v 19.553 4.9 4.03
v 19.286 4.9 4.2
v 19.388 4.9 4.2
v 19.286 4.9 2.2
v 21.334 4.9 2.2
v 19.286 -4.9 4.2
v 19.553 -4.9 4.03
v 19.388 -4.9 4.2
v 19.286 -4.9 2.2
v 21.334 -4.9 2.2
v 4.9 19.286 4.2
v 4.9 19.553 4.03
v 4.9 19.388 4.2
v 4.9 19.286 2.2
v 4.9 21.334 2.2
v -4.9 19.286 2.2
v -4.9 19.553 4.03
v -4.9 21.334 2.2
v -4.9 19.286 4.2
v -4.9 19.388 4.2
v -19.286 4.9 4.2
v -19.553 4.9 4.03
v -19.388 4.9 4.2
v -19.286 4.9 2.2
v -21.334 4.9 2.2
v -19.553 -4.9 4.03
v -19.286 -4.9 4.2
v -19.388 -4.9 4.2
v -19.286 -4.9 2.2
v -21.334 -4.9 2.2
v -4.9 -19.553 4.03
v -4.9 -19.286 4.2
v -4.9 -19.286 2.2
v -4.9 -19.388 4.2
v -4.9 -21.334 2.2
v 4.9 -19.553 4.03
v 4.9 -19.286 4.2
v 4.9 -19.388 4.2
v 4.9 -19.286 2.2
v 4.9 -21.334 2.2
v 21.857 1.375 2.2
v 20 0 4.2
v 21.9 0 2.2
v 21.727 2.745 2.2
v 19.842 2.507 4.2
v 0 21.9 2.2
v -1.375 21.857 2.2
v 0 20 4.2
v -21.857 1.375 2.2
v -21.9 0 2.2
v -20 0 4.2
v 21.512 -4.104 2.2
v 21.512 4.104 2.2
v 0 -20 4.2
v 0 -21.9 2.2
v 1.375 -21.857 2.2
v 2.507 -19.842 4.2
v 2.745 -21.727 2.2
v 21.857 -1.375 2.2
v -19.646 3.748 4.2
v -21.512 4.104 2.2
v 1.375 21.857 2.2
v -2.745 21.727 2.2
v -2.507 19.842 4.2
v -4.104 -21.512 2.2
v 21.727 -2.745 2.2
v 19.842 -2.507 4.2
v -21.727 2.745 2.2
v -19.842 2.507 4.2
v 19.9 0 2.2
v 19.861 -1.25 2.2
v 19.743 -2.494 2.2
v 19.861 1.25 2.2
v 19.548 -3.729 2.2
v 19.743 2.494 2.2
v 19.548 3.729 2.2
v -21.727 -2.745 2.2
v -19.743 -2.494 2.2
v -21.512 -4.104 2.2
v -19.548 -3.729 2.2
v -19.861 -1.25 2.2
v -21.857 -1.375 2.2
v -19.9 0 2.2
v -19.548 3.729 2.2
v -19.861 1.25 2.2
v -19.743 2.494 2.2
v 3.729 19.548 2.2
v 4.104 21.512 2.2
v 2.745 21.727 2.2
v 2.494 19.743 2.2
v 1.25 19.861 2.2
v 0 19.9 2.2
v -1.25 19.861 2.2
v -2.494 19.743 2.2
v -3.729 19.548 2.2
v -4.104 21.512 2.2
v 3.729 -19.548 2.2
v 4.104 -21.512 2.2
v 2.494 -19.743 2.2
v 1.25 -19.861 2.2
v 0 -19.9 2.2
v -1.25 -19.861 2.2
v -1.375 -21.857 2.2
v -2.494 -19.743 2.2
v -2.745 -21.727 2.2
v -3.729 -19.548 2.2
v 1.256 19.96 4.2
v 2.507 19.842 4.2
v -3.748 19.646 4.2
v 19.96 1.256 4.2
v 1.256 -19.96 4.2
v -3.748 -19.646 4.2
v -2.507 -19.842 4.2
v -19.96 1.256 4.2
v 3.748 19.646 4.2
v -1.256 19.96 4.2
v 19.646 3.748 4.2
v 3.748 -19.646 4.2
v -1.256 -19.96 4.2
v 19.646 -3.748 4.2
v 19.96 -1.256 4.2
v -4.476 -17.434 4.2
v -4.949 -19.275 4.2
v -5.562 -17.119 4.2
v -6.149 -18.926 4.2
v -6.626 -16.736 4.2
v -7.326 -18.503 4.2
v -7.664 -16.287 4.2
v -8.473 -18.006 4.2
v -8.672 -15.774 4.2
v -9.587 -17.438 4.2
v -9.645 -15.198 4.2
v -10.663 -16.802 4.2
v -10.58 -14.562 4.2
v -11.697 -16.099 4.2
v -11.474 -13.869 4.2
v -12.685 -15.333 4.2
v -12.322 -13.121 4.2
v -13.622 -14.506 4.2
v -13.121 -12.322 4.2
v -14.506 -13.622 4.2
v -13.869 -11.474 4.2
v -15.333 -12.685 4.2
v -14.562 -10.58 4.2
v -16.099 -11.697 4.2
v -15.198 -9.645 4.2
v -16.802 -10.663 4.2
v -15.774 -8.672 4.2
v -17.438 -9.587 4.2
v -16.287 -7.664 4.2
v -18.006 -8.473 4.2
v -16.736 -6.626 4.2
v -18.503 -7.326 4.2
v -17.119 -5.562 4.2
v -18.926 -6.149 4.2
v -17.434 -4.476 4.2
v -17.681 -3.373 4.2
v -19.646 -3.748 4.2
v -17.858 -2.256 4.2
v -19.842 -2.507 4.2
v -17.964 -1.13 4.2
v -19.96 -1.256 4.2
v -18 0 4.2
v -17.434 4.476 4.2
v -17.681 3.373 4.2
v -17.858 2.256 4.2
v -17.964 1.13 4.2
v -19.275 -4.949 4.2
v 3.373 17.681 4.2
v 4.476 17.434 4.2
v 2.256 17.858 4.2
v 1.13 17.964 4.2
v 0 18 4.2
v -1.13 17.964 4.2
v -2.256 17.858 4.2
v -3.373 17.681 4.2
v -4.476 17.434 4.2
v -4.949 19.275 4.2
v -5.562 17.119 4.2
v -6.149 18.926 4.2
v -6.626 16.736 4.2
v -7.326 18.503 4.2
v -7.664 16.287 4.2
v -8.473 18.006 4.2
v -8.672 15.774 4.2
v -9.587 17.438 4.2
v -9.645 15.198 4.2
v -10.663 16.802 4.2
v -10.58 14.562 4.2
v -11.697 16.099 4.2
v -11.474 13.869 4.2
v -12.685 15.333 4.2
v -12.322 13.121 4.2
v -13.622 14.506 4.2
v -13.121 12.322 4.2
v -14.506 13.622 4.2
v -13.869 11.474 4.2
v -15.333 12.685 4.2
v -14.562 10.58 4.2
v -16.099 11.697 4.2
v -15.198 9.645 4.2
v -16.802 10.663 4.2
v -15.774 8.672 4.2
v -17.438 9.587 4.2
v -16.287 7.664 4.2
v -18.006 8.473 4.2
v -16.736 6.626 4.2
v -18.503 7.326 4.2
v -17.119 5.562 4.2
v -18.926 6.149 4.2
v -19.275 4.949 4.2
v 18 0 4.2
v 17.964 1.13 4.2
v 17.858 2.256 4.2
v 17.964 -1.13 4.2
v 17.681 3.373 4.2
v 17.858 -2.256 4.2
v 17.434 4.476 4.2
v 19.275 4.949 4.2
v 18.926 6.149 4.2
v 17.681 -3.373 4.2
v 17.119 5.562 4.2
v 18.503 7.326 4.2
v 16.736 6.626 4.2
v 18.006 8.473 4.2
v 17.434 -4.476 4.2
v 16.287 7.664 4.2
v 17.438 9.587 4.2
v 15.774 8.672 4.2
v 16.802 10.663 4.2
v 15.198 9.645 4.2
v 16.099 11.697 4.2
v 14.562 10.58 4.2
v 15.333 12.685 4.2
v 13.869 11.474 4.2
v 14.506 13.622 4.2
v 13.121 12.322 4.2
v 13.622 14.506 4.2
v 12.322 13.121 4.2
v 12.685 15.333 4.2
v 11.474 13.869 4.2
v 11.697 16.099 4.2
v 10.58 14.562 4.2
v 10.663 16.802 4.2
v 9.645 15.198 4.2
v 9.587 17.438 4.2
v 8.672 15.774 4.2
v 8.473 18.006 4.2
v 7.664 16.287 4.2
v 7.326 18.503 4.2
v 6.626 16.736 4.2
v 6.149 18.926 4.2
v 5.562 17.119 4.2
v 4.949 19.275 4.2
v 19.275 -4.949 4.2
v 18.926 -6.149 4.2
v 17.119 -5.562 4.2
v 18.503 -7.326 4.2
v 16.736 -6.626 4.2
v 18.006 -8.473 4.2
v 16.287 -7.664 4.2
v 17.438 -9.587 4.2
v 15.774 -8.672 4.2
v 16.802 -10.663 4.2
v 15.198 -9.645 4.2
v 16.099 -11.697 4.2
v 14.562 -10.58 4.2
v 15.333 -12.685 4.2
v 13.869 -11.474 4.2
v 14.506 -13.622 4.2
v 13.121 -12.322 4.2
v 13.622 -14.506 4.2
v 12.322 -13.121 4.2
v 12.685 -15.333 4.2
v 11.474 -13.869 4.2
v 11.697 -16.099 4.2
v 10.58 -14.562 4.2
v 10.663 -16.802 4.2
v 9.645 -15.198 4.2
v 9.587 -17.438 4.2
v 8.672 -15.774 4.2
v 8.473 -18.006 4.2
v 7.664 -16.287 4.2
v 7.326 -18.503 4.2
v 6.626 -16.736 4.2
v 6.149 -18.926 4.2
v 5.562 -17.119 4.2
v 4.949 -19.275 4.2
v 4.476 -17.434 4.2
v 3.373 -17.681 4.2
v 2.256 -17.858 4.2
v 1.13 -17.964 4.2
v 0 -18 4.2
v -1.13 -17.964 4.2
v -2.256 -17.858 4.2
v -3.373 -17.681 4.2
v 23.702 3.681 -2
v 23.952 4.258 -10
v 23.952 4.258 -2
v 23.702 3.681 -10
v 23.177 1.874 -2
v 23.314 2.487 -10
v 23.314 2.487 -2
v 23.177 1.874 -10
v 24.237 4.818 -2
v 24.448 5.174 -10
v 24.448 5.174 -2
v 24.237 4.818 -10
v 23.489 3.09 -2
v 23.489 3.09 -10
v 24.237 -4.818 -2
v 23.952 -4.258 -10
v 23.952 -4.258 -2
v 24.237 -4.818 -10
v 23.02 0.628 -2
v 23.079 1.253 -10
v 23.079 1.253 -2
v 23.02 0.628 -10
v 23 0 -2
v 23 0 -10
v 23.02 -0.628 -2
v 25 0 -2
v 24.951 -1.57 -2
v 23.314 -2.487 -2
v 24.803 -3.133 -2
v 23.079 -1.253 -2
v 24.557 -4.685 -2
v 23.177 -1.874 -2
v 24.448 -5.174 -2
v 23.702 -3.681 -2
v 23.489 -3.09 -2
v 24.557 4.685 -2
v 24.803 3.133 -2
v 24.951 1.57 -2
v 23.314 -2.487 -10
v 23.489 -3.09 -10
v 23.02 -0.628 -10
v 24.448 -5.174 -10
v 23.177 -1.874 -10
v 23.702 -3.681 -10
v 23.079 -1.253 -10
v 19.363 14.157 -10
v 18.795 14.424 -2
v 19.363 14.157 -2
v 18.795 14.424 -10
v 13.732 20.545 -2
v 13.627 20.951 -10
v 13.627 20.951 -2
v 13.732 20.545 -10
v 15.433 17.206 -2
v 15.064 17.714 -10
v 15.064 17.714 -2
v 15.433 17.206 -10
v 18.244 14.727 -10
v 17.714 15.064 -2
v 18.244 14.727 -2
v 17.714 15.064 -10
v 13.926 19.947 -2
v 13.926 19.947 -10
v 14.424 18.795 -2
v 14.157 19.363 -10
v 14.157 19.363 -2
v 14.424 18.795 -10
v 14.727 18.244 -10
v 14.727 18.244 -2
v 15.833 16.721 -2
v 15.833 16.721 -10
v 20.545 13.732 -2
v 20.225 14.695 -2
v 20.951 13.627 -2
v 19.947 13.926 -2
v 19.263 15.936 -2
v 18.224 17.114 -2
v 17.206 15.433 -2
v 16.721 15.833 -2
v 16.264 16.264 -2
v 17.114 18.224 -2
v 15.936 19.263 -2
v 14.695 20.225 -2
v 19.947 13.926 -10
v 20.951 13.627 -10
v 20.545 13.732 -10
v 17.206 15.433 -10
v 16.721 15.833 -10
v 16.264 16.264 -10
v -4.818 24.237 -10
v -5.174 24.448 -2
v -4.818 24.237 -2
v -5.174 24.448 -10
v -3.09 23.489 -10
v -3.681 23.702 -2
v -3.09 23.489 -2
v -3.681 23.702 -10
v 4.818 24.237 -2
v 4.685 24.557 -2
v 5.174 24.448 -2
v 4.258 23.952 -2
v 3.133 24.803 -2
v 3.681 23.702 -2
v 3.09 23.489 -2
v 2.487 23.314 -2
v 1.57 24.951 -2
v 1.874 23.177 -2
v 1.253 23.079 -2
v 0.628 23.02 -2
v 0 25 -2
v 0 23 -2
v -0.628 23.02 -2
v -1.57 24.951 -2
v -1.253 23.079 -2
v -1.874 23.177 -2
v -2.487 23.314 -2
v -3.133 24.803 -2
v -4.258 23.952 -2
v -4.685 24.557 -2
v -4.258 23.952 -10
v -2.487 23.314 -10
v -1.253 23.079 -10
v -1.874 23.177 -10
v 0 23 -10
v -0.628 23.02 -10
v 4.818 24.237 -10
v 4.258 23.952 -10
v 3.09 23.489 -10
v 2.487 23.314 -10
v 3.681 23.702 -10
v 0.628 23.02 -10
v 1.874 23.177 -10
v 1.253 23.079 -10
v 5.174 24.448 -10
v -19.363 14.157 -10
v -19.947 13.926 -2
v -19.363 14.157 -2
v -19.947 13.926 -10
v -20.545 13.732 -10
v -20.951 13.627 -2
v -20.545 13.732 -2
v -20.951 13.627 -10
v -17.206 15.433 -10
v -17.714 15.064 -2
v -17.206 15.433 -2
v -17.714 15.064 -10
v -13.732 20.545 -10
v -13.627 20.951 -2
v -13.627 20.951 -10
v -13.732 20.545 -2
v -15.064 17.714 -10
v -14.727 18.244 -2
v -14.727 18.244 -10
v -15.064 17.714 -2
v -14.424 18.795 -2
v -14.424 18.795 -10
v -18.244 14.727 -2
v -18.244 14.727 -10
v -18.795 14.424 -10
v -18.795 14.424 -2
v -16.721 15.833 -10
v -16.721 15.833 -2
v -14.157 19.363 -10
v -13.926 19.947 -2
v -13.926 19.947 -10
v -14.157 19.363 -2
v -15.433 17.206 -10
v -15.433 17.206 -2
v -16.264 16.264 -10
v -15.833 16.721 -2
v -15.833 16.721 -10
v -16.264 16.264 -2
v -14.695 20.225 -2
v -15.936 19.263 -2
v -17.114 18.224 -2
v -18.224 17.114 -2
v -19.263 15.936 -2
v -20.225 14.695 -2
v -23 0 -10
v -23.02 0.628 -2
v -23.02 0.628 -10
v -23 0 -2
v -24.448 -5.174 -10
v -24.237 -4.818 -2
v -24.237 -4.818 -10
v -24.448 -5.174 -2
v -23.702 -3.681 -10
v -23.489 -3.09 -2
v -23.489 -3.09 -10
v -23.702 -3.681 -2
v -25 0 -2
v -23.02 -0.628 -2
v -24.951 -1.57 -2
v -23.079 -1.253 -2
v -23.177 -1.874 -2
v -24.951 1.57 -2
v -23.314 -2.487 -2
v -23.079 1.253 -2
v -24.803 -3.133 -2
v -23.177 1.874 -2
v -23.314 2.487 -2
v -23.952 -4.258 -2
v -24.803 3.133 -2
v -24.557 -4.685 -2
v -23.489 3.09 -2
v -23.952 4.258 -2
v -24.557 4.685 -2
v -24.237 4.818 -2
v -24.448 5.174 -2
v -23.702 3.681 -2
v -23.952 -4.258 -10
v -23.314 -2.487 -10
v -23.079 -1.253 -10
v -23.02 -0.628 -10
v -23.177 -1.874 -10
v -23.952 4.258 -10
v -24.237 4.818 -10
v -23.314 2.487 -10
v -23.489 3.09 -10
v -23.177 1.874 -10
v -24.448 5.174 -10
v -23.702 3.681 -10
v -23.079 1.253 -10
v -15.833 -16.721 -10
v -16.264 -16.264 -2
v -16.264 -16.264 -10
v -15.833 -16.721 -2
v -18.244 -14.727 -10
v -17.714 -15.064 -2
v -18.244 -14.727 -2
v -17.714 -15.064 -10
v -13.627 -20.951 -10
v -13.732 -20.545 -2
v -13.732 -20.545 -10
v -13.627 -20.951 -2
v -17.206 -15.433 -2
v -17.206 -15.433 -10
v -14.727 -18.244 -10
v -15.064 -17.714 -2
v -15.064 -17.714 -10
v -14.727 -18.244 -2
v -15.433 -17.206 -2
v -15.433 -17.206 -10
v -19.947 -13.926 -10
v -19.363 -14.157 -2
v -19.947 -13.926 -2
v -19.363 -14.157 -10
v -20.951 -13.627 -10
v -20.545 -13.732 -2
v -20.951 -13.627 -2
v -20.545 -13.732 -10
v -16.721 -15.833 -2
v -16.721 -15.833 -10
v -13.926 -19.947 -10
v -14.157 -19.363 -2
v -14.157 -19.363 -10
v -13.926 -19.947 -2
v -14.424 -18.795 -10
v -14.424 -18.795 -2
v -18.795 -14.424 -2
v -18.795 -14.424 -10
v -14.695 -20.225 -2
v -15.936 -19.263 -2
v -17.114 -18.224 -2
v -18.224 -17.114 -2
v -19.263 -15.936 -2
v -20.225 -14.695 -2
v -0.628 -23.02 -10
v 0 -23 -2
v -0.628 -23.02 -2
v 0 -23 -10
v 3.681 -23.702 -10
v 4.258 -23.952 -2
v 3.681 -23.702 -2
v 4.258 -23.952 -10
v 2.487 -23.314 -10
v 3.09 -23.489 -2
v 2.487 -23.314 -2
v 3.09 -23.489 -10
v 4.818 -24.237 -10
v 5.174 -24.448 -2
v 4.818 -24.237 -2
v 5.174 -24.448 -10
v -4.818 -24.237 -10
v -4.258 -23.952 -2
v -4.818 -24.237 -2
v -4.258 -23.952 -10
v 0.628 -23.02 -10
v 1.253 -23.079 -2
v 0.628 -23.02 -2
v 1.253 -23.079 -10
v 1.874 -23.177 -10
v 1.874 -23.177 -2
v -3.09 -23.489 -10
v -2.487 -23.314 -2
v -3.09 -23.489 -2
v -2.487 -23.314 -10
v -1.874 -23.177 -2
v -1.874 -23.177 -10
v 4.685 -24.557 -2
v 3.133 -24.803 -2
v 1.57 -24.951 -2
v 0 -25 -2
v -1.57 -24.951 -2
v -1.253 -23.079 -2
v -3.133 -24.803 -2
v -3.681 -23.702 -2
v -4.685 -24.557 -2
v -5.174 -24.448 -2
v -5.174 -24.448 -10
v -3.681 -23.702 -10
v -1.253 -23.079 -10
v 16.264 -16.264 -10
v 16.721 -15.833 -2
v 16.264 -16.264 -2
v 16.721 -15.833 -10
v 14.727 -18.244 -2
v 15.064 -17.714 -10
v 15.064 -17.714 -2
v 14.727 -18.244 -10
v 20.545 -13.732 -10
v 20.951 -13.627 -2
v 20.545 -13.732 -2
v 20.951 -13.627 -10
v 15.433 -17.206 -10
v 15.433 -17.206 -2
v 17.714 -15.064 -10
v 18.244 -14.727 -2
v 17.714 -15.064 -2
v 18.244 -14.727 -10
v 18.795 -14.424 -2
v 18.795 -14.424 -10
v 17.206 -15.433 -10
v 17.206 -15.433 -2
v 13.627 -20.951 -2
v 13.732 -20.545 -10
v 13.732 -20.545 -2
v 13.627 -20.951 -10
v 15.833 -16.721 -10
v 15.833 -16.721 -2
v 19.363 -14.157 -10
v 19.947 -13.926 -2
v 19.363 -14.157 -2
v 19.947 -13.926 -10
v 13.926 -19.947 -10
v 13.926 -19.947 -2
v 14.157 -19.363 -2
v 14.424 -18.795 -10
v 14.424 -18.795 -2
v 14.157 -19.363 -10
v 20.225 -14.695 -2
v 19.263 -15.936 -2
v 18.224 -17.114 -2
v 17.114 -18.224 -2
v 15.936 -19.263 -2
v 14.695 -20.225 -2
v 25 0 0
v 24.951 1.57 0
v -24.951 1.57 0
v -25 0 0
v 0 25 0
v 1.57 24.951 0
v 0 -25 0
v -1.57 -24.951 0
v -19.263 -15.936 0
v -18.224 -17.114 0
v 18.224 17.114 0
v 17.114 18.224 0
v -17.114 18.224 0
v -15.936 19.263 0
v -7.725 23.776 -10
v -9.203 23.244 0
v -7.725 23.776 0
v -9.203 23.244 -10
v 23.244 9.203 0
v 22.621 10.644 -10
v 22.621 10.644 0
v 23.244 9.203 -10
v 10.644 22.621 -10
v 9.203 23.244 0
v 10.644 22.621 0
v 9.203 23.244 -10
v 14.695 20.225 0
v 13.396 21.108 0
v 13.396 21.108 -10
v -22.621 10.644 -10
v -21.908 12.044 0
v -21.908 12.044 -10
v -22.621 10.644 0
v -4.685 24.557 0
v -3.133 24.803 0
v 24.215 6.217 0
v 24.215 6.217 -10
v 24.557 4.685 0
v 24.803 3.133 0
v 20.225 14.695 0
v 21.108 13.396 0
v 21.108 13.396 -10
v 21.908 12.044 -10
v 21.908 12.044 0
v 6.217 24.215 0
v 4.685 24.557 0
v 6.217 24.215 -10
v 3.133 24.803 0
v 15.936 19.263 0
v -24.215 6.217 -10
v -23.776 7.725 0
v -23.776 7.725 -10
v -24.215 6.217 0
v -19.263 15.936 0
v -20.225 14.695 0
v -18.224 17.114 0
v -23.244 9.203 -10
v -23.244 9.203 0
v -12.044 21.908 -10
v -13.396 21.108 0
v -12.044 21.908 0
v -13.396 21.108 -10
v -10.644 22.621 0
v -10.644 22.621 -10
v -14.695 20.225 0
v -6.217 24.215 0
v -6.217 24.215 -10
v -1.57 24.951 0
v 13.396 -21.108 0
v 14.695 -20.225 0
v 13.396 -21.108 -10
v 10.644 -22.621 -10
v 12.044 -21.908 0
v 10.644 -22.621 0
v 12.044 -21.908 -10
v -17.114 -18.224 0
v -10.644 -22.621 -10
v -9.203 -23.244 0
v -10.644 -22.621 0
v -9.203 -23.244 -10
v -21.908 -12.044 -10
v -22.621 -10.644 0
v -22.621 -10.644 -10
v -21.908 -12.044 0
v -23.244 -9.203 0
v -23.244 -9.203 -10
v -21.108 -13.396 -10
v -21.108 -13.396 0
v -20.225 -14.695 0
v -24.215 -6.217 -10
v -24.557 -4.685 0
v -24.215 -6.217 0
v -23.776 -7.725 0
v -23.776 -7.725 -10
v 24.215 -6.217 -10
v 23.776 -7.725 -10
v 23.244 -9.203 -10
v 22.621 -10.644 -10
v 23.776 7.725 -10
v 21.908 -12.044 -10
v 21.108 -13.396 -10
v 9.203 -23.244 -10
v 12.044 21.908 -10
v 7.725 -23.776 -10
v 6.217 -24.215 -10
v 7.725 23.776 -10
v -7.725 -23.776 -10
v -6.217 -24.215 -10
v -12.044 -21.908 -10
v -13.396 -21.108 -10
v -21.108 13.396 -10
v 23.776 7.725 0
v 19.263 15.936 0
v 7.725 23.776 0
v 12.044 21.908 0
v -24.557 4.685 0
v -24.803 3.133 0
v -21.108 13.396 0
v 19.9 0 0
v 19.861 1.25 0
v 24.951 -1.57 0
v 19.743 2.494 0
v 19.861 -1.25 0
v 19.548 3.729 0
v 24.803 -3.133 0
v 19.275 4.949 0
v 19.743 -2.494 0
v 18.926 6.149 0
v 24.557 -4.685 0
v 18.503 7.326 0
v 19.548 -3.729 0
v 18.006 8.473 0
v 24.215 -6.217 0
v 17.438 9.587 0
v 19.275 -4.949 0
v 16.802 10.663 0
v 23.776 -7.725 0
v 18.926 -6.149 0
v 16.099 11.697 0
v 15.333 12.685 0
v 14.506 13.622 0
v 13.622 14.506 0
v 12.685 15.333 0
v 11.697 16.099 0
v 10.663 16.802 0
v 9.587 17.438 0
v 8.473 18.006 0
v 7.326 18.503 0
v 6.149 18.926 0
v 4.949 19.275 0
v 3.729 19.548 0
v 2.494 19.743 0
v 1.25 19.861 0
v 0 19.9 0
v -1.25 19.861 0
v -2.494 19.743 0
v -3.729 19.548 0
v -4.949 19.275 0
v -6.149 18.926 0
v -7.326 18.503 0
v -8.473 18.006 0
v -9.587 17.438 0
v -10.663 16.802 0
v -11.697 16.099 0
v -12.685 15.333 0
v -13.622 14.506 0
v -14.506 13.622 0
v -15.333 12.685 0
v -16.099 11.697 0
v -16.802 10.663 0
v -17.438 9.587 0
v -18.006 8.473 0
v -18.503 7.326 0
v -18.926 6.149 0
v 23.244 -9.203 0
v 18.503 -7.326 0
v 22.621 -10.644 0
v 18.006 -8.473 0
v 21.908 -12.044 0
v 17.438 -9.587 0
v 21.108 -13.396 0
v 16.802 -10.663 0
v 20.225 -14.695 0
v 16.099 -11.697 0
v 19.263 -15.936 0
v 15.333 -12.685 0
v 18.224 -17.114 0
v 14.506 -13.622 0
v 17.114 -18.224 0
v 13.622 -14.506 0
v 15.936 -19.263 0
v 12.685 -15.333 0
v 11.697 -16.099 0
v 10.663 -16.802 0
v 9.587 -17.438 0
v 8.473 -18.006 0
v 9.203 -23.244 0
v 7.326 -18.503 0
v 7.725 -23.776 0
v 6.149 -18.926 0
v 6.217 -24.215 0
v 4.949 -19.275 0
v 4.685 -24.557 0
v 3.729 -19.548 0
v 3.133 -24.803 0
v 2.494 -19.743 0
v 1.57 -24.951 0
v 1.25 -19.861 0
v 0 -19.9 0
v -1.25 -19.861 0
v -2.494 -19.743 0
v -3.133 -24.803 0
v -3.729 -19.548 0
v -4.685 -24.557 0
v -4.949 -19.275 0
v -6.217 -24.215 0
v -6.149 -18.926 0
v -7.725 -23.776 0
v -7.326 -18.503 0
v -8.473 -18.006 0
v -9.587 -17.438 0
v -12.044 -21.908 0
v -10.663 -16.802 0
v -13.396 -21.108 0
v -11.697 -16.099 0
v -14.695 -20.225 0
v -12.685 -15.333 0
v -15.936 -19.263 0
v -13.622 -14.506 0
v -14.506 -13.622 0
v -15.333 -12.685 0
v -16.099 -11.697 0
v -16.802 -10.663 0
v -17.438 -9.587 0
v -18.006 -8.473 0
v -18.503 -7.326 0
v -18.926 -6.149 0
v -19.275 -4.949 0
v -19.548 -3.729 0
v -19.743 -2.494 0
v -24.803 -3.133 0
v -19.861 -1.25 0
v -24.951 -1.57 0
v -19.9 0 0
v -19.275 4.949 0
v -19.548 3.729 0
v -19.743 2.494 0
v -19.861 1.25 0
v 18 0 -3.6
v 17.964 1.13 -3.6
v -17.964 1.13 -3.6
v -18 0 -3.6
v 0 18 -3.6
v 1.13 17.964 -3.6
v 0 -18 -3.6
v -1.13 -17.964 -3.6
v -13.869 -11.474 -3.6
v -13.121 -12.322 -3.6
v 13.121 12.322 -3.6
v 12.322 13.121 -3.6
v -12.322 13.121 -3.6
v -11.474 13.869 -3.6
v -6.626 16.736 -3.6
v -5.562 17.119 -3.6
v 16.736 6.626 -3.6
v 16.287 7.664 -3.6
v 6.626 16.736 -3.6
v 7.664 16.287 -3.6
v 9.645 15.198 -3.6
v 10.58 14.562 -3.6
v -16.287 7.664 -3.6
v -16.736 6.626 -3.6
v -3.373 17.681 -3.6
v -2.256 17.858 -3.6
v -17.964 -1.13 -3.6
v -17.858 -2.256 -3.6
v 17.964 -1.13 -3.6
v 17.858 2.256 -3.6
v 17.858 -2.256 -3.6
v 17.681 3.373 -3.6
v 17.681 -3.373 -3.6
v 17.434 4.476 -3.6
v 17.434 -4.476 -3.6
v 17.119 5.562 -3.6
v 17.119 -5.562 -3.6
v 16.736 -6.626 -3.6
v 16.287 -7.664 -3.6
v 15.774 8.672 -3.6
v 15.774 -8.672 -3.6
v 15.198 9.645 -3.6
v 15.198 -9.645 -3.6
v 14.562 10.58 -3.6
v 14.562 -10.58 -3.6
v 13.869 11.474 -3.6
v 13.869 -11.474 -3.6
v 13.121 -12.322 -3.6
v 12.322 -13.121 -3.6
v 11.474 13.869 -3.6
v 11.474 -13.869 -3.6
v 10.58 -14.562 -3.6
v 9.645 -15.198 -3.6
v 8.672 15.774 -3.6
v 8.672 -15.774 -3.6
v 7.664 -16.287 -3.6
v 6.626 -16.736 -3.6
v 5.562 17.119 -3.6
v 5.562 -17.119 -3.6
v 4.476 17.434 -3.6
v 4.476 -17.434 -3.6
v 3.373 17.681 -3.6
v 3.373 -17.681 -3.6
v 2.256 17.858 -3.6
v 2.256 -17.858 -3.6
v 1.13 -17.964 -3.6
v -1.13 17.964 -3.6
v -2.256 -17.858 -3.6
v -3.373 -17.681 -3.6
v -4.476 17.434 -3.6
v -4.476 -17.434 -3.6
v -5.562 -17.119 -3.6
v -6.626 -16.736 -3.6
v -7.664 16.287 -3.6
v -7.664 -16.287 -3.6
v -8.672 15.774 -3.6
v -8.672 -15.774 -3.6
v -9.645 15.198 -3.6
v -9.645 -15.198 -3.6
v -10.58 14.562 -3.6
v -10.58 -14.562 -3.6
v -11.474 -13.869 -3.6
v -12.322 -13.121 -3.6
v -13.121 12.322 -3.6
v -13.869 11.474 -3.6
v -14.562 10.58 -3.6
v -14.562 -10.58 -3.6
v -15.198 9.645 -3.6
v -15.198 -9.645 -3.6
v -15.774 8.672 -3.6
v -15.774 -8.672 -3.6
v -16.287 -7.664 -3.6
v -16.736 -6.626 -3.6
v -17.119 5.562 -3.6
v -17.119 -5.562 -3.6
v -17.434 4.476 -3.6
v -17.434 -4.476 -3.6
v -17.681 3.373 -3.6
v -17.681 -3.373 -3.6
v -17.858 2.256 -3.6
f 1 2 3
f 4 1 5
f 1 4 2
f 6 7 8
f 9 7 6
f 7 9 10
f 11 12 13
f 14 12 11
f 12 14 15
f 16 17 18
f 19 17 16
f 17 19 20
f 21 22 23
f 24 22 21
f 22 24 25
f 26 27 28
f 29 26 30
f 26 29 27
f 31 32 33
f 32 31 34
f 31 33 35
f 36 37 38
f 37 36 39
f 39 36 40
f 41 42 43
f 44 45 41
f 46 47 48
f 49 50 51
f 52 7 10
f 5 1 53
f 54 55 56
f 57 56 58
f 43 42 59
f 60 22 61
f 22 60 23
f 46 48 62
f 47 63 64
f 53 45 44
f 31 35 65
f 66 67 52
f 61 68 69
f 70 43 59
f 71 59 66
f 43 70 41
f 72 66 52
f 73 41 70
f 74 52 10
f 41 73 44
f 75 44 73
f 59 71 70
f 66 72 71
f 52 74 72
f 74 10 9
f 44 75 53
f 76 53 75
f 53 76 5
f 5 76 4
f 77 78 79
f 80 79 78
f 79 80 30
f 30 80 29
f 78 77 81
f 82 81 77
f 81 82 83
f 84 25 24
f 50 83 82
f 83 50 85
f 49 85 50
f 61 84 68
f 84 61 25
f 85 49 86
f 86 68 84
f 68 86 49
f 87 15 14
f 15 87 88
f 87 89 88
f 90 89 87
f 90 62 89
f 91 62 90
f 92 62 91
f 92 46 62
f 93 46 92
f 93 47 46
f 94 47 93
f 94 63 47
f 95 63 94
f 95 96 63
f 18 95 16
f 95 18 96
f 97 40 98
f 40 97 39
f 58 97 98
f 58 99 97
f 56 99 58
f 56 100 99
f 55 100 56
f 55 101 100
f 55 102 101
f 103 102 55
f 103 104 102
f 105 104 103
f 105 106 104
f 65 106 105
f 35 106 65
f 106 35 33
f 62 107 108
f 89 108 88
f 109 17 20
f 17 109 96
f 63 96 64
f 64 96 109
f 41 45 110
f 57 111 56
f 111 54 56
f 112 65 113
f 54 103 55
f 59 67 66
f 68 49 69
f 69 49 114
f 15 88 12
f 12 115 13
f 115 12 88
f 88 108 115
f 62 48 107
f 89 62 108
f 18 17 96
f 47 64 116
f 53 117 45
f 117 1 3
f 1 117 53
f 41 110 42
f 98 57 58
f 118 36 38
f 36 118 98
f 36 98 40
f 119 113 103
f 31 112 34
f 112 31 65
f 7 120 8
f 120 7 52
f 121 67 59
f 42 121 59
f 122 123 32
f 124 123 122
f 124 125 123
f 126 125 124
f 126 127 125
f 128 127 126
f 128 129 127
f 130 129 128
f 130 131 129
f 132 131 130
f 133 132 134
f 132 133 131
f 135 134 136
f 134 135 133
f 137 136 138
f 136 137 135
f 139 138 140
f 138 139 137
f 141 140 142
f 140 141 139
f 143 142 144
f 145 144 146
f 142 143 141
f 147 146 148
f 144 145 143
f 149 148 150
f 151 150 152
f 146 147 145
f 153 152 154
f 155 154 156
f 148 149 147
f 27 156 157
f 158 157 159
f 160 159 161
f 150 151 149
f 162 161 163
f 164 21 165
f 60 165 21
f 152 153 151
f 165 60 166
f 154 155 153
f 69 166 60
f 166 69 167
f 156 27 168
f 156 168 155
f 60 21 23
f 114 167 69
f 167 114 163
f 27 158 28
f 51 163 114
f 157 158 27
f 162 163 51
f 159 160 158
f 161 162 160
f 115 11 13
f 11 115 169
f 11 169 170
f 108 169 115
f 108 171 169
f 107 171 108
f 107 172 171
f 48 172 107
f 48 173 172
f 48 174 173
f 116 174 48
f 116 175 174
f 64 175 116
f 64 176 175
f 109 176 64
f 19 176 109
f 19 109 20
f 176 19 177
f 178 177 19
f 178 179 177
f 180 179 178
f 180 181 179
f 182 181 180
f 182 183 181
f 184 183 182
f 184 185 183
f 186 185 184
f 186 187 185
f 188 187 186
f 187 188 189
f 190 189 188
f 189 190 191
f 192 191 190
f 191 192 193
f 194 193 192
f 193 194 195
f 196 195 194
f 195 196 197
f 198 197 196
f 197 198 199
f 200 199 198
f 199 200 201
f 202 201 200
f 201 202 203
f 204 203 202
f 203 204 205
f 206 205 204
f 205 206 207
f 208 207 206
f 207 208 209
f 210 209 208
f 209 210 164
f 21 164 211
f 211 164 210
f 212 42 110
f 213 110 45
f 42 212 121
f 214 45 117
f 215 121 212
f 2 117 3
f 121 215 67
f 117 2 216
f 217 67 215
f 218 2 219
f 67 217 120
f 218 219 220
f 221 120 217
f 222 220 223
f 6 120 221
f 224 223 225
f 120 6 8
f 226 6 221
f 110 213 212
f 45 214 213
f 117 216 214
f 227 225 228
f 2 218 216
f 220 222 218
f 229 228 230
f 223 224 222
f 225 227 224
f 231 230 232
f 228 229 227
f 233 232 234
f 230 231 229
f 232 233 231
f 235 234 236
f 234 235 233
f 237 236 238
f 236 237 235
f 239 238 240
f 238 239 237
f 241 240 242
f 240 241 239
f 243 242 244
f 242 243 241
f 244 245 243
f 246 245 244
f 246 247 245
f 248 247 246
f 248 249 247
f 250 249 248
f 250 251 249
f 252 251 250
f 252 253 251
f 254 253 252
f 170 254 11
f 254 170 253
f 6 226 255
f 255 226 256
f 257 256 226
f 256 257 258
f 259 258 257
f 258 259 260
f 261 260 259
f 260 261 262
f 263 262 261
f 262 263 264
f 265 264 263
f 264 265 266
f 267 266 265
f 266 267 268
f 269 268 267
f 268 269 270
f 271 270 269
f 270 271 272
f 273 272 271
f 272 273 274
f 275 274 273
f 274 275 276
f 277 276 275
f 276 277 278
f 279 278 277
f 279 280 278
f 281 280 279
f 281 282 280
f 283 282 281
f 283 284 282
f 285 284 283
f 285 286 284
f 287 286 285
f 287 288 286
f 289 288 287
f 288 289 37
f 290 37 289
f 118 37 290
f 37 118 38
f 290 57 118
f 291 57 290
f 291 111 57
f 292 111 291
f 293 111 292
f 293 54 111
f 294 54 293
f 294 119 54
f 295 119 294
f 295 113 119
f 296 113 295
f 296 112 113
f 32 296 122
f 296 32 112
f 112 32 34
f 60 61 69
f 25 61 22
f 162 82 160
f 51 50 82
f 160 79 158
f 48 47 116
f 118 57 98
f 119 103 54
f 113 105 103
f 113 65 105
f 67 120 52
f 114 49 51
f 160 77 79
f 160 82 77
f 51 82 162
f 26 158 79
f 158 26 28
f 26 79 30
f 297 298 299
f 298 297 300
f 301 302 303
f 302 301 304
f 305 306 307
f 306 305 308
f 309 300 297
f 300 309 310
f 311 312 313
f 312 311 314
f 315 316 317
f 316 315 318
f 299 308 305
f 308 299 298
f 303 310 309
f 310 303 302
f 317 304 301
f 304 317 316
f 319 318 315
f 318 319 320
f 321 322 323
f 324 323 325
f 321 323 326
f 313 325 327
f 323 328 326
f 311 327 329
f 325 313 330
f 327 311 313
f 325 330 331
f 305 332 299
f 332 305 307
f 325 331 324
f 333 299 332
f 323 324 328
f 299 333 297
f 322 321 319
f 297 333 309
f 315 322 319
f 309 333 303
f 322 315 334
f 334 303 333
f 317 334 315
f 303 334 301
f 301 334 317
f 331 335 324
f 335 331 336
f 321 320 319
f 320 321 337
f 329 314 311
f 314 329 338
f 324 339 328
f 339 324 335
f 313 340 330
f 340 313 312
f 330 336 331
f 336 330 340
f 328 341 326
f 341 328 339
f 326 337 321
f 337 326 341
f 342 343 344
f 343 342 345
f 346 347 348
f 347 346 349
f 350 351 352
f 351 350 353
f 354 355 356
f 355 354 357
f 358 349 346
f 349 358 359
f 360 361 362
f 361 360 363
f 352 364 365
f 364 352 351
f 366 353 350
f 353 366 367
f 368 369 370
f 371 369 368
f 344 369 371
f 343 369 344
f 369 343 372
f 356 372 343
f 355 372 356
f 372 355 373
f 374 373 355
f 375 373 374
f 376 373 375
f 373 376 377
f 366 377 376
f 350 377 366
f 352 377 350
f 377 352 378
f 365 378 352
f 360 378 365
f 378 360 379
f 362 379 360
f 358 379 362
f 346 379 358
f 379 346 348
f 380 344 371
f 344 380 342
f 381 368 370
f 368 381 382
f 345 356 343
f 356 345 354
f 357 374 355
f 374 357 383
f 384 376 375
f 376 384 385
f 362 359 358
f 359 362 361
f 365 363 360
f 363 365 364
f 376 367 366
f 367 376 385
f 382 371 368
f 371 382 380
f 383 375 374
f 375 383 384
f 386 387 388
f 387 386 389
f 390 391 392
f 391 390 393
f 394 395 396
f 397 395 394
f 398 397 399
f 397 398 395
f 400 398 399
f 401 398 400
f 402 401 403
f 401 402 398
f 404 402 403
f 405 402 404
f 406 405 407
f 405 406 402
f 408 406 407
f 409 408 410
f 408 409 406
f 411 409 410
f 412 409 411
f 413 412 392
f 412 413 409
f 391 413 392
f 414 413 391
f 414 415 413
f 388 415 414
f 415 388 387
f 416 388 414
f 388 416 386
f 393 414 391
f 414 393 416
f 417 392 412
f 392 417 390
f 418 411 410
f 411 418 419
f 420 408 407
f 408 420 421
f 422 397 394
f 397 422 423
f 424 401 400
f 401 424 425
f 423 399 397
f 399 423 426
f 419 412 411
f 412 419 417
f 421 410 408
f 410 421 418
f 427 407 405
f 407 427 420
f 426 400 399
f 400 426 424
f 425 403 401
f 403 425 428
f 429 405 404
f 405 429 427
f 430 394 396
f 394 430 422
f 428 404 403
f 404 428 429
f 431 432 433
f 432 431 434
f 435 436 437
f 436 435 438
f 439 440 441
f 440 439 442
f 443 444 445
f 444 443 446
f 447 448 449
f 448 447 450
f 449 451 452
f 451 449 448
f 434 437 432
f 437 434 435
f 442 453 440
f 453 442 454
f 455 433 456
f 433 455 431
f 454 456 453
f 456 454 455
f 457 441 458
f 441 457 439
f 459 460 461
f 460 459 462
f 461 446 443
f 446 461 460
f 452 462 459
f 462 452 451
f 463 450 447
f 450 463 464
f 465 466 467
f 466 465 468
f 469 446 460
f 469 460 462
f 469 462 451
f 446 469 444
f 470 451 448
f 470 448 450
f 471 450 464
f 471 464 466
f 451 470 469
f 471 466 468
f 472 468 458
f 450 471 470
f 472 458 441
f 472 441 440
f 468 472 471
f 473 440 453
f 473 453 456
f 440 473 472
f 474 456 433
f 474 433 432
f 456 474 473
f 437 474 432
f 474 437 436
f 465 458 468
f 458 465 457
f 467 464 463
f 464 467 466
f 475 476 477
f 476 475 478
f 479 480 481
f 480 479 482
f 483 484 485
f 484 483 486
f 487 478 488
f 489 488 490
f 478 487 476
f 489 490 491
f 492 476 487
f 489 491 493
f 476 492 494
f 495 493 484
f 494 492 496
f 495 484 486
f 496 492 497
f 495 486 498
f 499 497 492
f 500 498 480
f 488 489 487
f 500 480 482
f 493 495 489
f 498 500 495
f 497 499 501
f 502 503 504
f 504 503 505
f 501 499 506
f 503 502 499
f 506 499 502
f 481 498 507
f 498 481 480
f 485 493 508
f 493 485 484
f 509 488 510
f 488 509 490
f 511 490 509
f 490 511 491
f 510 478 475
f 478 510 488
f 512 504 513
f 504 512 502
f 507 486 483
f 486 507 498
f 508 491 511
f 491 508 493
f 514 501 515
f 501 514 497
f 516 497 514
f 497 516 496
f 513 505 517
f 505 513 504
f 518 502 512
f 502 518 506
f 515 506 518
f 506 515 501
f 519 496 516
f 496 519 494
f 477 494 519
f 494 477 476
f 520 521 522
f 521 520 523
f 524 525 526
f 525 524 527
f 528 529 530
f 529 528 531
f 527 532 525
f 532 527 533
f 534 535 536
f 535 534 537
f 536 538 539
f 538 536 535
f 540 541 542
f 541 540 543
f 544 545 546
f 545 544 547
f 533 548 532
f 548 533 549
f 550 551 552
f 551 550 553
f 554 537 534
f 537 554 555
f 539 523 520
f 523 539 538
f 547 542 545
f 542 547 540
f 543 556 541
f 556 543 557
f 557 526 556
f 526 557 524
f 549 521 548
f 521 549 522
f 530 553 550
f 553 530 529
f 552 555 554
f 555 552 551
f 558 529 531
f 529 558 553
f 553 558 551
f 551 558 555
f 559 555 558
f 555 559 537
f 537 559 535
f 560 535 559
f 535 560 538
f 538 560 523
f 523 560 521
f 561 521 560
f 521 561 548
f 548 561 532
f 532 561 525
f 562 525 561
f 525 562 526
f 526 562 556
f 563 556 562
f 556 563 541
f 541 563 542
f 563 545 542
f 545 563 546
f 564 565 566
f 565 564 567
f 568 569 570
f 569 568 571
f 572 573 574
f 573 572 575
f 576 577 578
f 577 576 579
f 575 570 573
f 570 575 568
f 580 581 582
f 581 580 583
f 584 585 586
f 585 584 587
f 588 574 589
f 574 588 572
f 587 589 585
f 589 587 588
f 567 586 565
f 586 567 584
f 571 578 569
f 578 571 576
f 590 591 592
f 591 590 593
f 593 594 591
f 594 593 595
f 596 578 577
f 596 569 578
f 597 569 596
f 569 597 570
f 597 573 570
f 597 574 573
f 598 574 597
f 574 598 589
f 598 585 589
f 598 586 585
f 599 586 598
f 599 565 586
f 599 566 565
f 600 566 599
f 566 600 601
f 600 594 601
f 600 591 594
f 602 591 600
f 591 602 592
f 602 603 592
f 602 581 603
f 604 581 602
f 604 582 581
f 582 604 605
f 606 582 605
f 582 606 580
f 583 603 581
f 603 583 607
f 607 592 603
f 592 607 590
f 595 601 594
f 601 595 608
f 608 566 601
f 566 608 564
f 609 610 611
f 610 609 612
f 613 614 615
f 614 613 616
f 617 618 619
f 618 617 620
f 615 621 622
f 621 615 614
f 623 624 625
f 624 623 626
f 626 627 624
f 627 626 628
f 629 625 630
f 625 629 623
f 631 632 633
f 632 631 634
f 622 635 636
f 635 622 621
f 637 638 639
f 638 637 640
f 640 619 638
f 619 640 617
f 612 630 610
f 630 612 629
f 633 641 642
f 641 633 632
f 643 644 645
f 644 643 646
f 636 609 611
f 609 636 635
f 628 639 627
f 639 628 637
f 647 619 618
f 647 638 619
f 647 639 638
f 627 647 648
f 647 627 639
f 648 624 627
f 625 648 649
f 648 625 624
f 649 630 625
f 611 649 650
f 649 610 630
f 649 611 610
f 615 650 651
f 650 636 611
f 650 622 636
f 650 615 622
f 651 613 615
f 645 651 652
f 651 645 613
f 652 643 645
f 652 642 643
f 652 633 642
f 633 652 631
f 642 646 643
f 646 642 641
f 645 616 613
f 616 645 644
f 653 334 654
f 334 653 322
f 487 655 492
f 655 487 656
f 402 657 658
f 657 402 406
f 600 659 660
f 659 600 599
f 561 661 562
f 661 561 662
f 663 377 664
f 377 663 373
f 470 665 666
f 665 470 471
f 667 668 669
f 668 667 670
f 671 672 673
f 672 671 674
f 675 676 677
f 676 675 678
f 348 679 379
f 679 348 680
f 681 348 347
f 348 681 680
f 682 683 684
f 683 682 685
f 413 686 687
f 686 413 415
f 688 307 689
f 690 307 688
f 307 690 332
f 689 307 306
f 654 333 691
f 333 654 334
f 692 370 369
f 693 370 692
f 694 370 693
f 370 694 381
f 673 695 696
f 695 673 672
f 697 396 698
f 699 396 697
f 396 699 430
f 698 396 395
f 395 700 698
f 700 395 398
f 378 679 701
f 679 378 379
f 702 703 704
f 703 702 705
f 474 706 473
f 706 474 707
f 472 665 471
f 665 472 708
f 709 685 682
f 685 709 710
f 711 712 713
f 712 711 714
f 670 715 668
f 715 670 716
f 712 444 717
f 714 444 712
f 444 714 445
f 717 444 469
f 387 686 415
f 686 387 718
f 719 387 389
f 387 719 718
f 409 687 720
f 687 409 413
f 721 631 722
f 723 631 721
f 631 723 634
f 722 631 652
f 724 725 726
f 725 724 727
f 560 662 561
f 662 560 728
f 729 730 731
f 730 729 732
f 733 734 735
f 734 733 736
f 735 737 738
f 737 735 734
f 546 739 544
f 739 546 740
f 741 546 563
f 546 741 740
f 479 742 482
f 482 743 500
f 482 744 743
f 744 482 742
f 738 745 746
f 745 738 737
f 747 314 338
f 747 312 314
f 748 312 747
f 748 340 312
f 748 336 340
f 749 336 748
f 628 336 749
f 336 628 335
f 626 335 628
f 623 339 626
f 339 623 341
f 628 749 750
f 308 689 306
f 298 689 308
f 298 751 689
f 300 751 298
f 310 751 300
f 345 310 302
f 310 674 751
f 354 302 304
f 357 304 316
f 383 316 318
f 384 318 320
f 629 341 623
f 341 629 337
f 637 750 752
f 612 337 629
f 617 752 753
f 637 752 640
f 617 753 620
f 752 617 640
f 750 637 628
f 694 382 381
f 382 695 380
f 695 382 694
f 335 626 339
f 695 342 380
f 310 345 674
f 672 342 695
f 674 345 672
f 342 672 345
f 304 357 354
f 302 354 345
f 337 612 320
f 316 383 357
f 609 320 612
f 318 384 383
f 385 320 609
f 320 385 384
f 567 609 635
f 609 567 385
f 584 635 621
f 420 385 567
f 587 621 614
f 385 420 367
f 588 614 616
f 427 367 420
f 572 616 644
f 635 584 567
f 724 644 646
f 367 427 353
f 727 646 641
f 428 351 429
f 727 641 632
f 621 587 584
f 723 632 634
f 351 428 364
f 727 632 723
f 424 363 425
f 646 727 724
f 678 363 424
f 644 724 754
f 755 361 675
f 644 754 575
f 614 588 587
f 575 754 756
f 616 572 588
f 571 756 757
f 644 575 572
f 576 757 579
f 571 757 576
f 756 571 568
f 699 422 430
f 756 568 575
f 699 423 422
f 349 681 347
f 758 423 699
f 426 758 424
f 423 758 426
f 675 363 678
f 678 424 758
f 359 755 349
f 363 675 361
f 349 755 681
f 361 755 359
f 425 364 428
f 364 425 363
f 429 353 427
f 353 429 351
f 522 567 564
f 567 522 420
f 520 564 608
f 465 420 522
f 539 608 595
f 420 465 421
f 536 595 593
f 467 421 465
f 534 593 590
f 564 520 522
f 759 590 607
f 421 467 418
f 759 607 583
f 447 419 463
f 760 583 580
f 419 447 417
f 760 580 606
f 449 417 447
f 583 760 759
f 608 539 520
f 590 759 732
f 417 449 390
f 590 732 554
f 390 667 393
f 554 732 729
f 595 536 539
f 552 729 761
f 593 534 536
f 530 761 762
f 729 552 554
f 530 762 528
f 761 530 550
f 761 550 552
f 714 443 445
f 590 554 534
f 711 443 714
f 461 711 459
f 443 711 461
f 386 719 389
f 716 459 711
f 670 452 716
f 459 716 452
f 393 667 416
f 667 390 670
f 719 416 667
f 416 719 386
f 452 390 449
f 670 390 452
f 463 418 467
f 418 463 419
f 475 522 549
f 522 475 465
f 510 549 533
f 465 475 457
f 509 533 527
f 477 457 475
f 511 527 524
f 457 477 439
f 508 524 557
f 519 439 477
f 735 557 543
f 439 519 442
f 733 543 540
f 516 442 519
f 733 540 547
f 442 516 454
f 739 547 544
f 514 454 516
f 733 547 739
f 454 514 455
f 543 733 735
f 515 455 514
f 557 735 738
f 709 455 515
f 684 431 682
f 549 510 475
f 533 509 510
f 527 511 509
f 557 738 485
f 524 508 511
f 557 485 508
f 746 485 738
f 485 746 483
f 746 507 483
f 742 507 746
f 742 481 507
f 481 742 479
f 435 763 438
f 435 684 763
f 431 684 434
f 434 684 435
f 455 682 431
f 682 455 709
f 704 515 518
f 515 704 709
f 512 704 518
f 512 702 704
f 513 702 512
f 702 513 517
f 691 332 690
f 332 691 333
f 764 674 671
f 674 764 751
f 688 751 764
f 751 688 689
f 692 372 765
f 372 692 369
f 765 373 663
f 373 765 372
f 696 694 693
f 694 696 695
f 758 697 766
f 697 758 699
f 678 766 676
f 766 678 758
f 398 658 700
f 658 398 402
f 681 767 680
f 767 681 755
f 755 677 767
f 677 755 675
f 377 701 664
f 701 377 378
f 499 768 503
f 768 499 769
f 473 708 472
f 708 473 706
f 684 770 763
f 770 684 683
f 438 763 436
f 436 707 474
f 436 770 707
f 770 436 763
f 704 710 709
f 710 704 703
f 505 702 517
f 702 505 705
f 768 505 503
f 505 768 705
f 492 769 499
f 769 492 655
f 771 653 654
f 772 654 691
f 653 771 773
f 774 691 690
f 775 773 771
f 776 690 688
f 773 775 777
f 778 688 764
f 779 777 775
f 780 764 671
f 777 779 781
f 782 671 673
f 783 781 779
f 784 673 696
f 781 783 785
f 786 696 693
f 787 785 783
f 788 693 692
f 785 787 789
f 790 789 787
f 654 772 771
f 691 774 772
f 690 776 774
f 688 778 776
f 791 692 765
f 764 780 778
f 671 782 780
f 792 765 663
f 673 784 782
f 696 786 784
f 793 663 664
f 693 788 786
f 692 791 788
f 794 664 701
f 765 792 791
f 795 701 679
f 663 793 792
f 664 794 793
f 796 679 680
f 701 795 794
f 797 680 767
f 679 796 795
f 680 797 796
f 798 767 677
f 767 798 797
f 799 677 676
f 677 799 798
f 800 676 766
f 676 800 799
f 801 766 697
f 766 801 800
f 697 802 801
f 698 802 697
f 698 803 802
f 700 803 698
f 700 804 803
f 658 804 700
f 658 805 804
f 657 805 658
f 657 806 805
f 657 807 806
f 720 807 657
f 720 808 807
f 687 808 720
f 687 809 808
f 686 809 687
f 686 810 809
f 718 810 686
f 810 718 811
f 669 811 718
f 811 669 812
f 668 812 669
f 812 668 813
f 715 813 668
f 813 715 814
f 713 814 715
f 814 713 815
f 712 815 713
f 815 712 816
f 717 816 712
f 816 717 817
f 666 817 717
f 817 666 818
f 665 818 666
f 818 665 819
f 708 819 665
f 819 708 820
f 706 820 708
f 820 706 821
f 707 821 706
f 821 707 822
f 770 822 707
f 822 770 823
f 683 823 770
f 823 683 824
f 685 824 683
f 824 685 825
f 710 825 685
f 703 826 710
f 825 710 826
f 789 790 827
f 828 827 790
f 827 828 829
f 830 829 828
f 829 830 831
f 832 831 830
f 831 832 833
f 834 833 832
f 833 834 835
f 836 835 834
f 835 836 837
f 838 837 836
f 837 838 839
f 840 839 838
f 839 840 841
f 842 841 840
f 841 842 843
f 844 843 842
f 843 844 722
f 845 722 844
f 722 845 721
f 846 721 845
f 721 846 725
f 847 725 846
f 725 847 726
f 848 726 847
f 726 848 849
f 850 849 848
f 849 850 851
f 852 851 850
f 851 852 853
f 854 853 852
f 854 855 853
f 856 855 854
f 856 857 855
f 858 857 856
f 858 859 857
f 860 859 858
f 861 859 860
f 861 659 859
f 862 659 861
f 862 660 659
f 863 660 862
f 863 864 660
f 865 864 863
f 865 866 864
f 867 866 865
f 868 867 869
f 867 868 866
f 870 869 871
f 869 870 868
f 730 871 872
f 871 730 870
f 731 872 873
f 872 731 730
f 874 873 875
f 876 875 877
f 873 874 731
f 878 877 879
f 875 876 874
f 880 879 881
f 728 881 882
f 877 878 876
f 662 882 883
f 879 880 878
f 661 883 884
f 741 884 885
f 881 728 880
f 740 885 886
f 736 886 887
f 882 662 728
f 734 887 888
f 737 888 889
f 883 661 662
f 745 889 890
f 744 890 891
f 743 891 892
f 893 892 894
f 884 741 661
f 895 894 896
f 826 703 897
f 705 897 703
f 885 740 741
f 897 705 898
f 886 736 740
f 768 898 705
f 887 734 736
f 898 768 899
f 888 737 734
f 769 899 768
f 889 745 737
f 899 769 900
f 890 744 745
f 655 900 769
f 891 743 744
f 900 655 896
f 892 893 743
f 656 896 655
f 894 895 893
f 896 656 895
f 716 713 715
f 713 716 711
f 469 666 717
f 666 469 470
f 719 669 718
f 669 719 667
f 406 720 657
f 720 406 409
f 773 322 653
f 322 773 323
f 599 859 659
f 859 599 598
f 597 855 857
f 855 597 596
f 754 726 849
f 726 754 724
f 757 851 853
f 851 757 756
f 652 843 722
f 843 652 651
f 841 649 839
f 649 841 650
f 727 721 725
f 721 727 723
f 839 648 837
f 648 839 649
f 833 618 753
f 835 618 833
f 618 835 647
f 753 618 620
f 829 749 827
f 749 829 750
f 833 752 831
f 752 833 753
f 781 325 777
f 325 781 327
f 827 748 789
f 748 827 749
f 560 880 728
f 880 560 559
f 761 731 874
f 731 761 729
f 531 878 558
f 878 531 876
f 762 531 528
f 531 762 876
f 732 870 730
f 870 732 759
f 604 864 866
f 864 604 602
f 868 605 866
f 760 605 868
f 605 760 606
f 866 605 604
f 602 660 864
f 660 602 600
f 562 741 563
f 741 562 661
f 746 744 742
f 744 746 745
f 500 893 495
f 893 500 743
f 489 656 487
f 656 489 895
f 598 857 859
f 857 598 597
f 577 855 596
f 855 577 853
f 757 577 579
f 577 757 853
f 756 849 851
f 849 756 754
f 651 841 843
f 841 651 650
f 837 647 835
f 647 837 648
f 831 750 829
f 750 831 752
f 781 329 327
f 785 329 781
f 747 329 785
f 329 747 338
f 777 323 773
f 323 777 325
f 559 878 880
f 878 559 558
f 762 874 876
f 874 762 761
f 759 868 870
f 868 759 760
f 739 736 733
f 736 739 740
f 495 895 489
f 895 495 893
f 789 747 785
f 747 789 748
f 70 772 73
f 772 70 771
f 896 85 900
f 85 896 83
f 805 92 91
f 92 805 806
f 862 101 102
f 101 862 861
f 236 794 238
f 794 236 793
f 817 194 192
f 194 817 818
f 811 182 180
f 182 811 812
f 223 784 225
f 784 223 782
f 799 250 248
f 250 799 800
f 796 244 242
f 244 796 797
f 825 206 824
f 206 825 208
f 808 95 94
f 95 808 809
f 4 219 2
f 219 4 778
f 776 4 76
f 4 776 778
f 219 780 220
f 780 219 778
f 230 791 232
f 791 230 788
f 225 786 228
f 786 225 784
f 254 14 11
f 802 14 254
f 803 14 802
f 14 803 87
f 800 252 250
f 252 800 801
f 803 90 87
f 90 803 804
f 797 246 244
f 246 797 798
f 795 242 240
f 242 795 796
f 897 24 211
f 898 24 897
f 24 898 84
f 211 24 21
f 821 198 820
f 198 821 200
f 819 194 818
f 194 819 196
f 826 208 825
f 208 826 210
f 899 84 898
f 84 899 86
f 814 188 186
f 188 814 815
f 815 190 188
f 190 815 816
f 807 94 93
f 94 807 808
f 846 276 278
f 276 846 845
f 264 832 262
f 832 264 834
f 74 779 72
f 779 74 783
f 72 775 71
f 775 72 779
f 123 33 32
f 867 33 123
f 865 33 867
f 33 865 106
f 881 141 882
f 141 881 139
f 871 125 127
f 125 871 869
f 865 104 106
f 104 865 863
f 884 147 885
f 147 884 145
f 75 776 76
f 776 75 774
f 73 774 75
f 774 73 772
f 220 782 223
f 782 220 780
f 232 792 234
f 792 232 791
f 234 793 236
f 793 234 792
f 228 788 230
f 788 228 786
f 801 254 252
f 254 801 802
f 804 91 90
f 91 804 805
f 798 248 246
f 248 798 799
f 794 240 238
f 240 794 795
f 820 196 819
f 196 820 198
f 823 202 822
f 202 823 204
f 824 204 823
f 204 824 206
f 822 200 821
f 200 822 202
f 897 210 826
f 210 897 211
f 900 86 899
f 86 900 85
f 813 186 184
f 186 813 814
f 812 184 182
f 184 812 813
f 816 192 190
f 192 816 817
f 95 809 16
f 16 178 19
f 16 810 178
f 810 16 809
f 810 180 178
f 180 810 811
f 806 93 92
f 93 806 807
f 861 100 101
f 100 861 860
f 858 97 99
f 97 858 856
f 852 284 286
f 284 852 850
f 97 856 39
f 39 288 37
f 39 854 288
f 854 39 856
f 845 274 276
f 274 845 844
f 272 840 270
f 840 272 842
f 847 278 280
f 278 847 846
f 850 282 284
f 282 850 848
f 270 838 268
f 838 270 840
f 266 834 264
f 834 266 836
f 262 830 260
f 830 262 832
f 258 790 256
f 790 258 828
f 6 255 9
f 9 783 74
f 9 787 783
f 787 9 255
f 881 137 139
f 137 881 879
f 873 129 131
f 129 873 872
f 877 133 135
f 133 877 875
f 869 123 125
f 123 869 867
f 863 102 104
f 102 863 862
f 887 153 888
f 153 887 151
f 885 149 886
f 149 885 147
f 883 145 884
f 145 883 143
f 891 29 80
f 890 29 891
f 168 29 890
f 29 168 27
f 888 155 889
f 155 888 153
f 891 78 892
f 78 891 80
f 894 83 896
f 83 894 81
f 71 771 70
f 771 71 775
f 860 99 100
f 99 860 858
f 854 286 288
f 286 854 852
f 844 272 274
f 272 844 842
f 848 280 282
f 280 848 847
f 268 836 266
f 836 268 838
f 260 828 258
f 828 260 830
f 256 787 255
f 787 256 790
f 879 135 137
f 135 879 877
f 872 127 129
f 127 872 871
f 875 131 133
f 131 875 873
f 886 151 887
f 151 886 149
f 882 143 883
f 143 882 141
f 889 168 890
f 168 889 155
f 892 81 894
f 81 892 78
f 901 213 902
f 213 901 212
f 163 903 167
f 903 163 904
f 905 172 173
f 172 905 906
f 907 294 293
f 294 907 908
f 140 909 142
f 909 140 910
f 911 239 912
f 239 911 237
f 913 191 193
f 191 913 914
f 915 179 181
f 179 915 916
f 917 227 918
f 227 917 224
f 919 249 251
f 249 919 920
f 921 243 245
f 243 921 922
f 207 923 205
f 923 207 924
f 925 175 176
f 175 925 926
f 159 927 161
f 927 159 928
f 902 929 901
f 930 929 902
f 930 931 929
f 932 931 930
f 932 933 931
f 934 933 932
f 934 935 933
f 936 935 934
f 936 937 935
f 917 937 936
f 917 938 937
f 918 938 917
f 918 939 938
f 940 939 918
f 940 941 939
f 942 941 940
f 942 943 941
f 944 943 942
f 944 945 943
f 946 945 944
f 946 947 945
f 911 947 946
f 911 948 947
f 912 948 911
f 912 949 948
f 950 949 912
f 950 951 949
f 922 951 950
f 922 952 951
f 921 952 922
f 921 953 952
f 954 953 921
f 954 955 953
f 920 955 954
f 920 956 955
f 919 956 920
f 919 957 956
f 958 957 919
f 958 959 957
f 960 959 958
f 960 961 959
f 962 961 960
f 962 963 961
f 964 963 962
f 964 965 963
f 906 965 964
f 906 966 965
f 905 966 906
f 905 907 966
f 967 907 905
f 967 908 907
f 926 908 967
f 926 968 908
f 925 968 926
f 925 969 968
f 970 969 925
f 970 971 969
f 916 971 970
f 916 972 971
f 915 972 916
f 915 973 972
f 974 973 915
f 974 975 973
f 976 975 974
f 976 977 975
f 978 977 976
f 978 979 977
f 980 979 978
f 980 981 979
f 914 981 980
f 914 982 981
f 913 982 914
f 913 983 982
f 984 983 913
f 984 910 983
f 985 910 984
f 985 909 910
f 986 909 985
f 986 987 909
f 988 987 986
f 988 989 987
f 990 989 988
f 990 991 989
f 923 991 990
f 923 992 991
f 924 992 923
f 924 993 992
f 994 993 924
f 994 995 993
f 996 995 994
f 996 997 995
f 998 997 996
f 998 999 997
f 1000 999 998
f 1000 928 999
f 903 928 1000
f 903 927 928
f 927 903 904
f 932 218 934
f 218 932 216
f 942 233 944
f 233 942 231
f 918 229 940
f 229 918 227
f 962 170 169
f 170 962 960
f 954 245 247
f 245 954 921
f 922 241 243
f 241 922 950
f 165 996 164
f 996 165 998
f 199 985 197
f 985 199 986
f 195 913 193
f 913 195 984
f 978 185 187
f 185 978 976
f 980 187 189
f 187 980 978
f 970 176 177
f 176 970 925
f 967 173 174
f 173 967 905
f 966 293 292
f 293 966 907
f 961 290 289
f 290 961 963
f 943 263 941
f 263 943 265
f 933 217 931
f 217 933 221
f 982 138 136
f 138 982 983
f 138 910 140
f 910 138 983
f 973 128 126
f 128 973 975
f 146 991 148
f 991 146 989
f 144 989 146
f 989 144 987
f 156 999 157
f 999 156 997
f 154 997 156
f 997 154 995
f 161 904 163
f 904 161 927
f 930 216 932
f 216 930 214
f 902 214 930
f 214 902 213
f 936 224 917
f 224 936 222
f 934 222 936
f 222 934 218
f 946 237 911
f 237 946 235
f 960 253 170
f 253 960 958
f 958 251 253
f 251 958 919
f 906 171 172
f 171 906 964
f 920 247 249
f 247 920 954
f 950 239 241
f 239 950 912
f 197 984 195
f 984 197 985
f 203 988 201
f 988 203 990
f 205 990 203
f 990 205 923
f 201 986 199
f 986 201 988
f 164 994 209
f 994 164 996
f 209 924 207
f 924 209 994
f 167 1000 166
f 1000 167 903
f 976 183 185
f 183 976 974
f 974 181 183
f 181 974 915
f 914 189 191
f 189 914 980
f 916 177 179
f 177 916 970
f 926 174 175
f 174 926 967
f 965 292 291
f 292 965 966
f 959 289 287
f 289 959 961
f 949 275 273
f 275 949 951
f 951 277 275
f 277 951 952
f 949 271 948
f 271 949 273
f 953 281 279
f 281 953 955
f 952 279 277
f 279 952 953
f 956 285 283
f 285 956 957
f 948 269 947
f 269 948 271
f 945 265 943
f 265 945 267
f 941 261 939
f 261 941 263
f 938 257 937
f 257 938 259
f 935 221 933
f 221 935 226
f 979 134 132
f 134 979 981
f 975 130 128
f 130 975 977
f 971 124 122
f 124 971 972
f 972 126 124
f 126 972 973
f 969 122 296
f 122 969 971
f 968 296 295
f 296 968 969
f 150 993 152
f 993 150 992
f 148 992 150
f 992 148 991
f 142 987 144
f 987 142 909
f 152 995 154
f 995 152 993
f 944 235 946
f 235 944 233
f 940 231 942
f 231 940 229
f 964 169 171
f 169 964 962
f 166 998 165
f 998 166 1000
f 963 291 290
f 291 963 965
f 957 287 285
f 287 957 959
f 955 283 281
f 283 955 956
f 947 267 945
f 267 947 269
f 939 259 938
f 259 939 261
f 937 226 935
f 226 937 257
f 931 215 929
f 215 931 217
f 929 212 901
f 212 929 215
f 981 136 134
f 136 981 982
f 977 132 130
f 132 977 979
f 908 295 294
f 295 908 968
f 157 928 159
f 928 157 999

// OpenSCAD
// file: lib/portable_screw_driver_set_lib.scad
/* Portable screw driver container module library file */

module portable_screw_driver_set_container() {

	difference(convexity = 10) {
		union() {
			difference() {
				union() {
					cylinder(h = outer_hull_len, d = outer_hull_dia);
					translate([0, 0, outer_hull_len]) cylinder(h = outer_hull_cone, d1 = outer_hull_dia, d2 = outer_hull_dia - outer_hull_cone * 2);
				}
				for(ang = [0: outer_rib_cnt - 1]) rotate([0, 0, ang * 360 / outer_rib_cnt]) translate([outer_hull_dia / 2 + outer_rib_dia / 2 - outer_rib_depth, 0, outer_rib_offset]) cylinder(d = outer_rib_dia, h = outer_hull_len);
			}
		}

		union() {
			cylinder(h = inner_container_len, d = inner_container_dia);
			translate([0, 0, inner_container_len]) cylinder(h = inner_container_cone, d1 = inner_container_dia, d2 = inner_container_dia - inner_container_cone * 2);
		}

		translate([0, 0, outer_hull_len + outer_hull_cone - hexal_hole_depth+ 0.1]) cylinder(d = hexal_hole_dia, h = hexal_hole_depth, $fn = 6);

		union() {
			translate([0, 0, -lock_offset]) cylinder(h = lock_offset * 2, d = inner_container_dia + lock_tol);
			translate([0, 0, lock_offset]) cylinder(h = lock_hight, d = inner_container_dia + lock_depth * 2 + lock_tol);
			translate([0, 0, lock_offset + lock_depth]) cylinder(h = lock_hight, d1 = inner_container_dia + lock_depth * 2 + lock_tol, d2 = inner_container_dia);

			intersection() {
				translate([0, 0, lock_offset - lock_tol]) cylinder(h = lock_offset, d = inner_container_dia + lock_depth * 2 + lock_tol);
				for(ang = [0: lock_cnt - 1]) rotate([0, 0, ang * 360 / lock_cnt + 360 / lock_cnt / 2]) translate([0, -(lock_br - lock_tol) / 2, -lock_offset]) cube([inner_container_dia, lock_br - lock_tol, lock_offset * 2]);
			}

			intersection() {
				translate([0, 0, -lock_offset]) cylinder(h = lock_offset * 2, d = inner_container_dia + lock_depth * 2 + lock_tol);
				for(ang = [0: lock_cnt - 1]) rotate([0, 0, ang * 360 / lock_cnt]) translate([0, -(lock_br - lock_tol) / 2, -lock_offset]) cube([inner_container_dia, lock_br - lock_tol, lock_offset * 2]);
			}
		}
	}
}

module portable_screw_driver_set_lid() {

	difference() {
		union() {
			translate([0, 0, -lock_offset + lock_tol]) cylinder(h = lock_offset * 2 + lock_hight, d = inner_container_dia - lock_tol);

			intersection() {
				translate([0, 0, lock_offset + lock_tol]) cylinder(h = lock_hight, d1 = inner_container_dia + lock_depth * 2 - lock_tol, d2 = inner_container_dia);
				for(ang = [0: lock_cnt - 1]) rotate([0, 0, ang * 360 / lock_cnt]) translate([0, -(lock_br - lock_tol) / 2, lock_offset]) cube([inner_container_dia, lock_br - lock_tol, lock_offset * 2]);
			}

			difference() {
				translate([0, 0, -lid_len]) cylinder(h = lid_len, d = lid_dia);
				for(ang = [0: lid_rib_cnt - 1]) rotate([0, 0, ang * 360 / lid_rib_cnt]) translate([lid_dia / 2 + lid_rib_dia / 2 - lid_rib_depth, 0, -lid_len - lid_rib_offset]) cylinder(d = lid_rib_dia, h = lid_len);
			}
		}

		translate([0, 0, -lid_hole_len + lock_offset + lock_hight + lock_tol * 2]) cylinder(h = lid_hole_len + lock_tol, d = lid_hole_dia);
	}
}
// file: lib/portable_screw_driver_set_xl_conf.scad
/* Portable screw driver container configuration file */

inner_container_len = 110;
inner_container_dia = 40;
inner_container_cone = 15;

outer_hull_len = 130;
outer_hull_dia = 50;
outer_hull_cone = 15;

outer_rib_cnt = 8;
outer_rib_depth = 2;
outer_rib_dia = 20;
outer_rib_offset = 10;

hexal_hole_dia = 9;
hexal_hole_depth = 15;

lock_offset = 2;
lock_depth = 2;
lock_hight = 2;
lock_cnt = 4;
lock_br = 10;
lock_tol = 0.2;

lid_len = 10;
lid_dia = outer_hull_dia;

lid_rib_cnt = outer_rib_cnt;
lid_rib_depth = outer_rib_depth;
lid_rib_dia = outer_rib_dia;
lid_rib_offset = 2;

lid_hole_len = 8;
lid_hole_dia = inner_container_dia - 4;

$fn = 100;
// main file
include<lib/portable_screw_driver_set_xl_conf.scad>;
include<lib/portable_screw_driver_set_lib.scad>;

portable_screw_driver_set_lid();
